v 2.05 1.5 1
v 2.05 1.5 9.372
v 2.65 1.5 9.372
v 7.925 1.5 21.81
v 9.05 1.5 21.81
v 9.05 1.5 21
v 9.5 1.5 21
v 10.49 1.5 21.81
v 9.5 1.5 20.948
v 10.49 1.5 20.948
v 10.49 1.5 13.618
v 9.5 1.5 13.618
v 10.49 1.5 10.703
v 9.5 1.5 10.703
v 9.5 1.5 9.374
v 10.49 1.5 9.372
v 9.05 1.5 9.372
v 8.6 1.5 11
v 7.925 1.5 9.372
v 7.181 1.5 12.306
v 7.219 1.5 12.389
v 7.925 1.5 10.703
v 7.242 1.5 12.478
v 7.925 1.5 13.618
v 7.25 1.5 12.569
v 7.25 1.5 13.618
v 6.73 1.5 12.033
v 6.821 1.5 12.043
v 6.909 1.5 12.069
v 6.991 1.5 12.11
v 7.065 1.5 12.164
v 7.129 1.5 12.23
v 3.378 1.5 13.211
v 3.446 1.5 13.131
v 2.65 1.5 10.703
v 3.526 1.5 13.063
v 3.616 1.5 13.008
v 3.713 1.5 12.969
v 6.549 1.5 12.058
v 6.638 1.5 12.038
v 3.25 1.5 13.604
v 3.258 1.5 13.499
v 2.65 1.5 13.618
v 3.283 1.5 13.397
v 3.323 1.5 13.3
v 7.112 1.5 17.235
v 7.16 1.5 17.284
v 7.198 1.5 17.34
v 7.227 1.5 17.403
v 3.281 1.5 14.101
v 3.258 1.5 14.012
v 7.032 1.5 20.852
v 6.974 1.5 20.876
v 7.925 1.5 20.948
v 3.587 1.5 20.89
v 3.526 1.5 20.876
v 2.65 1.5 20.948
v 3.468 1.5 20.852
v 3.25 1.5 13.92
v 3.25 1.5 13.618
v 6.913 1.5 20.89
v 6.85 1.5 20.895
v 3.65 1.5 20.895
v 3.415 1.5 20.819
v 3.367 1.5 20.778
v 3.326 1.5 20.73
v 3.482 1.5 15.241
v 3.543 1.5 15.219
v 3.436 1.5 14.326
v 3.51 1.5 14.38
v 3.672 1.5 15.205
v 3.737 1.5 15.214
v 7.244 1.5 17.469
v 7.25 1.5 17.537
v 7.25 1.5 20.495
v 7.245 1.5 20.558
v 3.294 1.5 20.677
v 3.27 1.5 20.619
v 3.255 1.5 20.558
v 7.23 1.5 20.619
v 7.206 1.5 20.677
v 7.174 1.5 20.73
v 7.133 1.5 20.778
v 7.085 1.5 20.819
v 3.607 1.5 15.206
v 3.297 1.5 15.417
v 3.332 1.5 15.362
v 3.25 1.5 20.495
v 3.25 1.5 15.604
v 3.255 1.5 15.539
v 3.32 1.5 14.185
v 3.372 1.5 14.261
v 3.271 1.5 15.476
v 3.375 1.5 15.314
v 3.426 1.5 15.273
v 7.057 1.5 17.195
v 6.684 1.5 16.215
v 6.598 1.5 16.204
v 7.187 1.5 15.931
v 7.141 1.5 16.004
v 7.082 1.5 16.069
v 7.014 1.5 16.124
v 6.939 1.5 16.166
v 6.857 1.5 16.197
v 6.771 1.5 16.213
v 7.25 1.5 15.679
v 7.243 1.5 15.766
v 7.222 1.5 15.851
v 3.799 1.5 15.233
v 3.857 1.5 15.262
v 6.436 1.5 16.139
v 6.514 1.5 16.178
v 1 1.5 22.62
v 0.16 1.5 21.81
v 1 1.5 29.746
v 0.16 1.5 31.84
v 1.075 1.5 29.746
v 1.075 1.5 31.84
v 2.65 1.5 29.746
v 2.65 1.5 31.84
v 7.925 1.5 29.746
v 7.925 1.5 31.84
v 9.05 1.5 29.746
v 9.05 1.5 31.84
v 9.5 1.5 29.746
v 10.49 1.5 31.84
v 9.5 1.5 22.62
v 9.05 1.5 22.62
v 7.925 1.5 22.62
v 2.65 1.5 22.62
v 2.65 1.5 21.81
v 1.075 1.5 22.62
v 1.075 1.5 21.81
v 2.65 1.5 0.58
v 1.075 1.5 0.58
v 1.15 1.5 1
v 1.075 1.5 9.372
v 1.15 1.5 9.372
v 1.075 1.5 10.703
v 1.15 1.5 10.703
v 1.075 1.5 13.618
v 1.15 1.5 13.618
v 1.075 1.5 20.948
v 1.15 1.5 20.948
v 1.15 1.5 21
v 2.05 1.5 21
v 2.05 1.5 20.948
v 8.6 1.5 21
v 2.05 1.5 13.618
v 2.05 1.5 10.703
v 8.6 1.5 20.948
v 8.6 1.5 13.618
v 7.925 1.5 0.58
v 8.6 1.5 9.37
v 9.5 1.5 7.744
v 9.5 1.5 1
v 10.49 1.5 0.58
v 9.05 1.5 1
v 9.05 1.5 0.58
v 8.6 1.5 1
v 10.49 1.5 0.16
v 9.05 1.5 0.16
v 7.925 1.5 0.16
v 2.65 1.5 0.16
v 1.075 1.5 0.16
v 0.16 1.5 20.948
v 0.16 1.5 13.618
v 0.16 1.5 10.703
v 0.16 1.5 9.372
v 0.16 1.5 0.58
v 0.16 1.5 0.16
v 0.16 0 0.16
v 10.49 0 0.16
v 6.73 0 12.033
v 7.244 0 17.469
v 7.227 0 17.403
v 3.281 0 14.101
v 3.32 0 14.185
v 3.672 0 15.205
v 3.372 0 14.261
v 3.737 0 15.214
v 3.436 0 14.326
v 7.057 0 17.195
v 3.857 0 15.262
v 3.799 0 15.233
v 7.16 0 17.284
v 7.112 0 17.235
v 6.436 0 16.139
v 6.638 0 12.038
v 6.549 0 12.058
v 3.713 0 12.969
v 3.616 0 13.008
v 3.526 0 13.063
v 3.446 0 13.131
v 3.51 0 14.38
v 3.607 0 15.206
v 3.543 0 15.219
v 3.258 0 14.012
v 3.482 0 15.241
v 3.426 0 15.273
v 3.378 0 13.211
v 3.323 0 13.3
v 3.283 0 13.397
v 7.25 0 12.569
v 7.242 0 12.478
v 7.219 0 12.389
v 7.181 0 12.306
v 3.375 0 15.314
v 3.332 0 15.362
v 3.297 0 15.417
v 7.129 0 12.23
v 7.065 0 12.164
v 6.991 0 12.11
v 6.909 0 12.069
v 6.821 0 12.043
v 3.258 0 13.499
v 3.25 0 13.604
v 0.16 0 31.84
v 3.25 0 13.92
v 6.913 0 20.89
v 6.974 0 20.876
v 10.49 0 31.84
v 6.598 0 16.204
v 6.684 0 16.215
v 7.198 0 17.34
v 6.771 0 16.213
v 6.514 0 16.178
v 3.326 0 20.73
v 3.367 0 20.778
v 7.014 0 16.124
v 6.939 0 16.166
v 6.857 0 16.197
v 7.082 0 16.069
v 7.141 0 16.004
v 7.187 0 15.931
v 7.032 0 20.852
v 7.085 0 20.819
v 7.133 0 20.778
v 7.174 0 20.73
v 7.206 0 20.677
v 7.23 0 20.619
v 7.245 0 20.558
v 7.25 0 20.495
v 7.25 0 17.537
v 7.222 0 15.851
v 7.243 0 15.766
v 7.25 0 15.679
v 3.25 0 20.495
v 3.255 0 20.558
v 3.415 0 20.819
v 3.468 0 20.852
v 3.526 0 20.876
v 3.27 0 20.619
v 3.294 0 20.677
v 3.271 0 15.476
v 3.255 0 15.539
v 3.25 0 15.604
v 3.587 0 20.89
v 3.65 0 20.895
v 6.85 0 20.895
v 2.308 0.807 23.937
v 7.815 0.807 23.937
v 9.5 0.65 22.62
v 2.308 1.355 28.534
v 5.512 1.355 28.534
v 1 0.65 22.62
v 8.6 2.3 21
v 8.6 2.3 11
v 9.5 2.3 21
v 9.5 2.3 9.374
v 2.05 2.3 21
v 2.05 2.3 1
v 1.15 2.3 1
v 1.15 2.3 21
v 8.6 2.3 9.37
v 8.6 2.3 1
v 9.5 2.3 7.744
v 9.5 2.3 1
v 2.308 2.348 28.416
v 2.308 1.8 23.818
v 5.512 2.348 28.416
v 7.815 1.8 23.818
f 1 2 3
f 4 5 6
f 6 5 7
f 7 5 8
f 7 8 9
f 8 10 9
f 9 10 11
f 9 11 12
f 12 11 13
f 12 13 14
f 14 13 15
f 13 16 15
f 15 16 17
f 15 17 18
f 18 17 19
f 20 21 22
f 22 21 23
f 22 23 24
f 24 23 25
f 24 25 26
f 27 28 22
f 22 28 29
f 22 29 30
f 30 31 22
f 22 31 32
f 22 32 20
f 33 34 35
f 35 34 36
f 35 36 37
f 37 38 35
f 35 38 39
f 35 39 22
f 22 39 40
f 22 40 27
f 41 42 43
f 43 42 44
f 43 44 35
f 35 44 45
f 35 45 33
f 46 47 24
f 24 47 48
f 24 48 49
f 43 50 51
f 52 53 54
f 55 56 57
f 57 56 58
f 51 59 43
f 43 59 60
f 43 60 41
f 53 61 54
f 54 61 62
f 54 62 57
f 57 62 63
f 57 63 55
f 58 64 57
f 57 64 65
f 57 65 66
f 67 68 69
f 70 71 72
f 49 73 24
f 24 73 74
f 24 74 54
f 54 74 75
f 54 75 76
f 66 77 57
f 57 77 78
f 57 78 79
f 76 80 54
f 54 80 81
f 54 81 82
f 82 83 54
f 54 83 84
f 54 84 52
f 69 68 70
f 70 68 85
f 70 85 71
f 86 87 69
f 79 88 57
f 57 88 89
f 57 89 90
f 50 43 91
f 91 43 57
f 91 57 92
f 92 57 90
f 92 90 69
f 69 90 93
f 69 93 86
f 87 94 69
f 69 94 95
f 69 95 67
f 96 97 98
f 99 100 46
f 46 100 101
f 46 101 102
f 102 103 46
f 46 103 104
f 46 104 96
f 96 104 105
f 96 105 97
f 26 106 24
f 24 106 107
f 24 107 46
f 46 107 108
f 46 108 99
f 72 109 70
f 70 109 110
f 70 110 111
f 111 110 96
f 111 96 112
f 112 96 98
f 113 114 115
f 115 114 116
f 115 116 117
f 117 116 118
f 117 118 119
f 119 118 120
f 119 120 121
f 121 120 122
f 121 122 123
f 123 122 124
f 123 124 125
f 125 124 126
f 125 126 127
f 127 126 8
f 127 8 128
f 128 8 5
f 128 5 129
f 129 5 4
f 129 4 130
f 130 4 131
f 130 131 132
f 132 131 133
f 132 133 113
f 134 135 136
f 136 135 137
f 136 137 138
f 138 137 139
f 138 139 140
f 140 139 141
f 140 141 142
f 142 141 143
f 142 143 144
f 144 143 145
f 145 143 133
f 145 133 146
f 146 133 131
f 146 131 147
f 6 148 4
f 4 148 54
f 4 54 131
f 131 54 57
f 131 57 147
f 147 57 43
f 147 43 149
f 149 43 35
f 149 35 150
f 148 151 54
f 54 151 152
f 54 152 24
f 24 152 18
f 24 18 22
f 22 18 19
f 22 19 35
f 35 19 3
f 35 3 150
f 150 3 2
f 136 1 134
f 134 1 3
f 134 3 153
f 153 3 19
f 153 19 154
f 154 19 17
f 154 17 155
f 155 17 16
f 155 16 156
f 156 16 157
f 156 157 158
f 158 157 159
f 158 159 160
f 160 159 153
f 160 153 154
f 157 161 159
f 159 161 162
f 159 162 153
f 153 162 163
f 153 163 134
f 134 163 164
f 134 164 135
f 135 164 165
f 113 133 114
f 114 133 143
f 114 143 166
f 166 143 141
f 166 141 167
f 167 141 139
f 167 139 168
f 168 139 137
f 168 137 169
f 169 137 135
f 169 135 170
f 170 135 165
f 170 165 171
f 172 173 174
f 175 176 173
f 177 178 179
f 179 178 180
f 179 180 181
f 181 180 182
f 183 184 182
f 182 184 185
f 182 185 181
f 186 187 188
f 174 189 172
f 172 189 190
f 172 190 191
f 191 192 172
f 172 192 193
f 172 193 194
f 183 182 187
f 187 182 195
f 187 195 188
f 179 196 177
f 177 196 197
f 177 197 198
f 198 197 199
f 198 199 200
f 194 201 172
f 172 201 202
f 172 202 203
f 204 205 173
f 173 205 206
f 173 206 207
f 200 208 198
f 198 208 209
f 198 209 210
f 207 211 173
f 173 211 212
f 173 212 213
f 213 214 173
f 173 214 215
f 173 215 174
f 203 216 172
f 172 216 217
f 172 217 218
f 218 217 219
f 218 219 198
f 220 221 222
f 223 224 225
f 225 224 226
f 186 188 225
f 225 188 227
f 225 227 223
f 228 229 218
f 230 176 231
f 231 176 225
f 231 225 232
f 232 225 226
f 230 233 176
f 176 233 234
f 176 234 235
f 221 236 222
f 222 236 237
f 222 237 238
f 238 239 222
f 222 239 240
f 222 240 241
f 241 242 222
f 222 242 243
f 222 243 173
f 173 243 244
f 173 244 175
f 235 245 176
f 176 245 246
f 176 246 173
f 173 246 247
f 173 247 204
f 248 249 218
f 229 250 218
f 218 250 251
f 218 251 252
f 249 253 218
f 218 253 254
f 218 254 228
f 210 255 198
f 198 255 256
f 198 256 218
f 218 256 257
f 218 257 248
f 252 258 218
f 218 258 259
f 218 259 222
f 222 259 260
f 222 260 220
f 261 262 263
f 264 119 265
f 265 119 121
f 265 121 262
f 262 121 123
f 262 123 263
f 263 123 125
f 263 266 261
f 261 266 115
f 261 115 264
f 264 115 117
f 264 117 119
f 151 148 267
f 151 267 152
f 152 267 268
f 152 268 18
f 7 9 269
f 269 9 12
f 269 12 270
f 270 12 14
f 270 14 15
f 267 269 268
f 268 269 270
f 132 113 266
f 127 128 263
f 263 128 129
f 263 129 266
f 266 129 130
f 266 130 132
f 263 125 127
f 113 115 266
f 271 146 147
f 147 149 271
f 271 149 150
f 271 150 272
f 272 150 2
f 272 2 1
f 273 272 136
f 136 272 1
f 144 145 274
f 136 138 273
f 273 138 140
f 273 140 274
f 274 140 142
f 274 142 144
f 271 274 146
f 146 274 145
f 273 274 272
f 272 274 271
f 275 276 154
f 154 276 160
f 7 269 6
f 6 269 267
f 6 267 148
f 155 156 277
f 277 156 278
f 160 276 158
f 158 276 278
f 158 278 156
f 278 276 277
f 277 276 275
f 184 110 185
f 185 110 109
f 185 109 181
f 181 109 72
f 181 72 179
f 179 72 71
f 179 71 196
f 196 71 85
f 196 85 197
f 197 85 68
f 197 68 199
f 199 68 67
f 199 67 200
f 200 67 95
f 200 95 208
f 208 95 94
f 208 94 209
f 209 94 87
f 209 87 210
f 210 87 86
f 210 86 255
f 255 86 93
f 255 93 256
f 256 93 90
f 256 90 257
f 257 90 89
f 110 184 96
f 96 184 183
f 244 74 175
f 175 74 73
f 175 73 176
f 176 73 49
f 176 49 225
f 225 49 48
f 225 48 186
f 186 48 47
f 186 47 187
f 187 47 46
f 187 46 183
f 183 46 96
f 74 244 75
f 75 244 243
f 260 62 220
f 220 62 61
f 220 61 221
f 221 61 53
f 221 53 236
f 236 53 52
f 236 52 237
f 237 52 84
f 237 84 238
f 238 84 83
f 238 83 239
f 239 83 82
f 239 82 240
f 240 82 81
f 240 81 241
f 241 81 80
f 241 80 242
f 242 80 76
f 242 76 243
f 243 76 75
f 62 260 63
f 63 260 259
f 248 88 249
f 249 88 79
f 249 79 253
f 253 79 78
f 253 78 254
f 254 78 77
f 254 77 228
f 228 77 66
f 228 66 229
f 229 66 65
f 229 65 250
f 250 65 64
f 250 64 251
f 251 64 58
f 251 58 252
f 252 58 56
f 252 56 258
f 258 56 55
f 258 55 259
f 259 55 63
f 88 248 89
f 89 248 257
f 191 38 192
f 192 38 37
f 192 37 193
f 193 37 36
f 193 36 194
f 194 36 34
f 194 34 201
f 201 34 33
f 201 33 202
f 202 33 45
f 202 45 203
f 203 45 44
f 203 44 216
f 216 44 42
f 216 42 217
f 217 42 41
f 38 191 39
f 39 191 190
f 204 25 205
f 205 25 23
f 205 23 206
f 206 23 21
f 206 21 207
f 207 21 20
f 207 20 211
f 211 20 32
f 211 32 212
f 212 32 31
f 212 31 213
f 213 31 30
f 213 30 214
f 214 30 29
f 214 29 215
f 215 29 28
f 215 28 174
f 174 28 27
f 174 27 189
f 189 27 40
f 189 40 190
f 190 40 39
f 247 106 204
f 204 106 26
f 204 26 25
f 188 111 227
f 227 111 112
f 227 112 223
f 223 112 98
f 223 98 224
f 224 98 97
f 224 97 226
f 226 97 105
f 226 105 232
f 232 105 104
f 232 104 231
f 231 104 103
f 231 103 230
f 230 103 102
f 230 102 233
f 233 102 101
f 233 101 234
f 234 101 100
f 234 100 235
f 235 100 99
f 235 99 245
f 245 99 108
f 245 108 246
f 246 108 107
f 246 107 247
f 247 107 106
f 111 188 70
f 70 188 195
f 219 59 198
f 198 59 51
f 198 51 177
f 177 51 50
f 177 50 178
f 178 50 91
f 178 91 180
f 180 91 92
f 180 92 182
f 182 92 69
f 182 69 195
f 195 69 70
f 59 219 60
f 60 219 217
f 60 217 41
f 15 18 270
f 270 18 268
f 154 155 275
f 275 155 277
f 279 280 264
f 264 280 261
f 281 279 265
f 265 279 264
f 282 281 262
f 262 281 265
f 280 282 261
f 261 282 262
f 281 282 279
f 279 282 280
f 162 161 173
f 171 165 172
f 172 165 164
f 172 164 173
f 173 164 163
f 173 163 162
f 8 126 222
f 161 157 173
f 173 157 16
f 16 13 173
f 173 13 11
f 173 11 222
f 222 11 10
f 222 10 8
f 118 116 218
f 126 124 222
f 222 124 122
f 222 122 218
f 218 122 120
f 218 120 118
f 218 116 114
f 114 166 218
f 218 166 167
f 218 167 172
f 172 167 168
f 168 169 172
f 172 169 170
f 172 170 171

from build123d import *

# Parameters (mm, degrees)
SKETCH_1_W          = 10.65
SKETCH_1_H          = 32
EXTRUDE_1_DEPTH     = 1.5
CUT_EXTRUDE_START   = -1
CUT_EXTRUDE_1_DEPTH = 8.5
SKETCH_4_W          = 0.9
SKETCH_4_H          = 20
EXTRUDE_2_DEPTH     = 0.8
CUT_EXTRUDE_2_DEPTH = 5.8
CUT_EXTRUDE_3_DEPTH = 0.8
EXTRUDE_3_DEPTH     = 1
SKETCH_8_W          = 10.65
SKETCH_8_H          = 32
SKETCH_8_W_2        = 10.33
SKETCH_8_H_2        = 31.68
CUT_EXTRUDE_4_DEPTH = 10


with BuildPart() as part:
    # 草图1 → 凸台-拉伸1 (new body)
    with BuildSketch(Plane(origin=(0, 0, 0), x_dir=(1, 0, 0), z_dir=(0, 1, 0))):
        with Locations((5.325, -16)):
            Rectangle(SKETCH_1_W, SKETCH_1_H)
    extrude(amount=EXTRUDE_1_DEPTH)

    # 草图3 → 切除-拉伸1 (cut)
    with BuildSketch(Plane.ZY.offset(CUT_EXTRUDE_START)):
        Polygon((22.619658117, 1.5), (29.745922722, 1.5), (22.619658117, 0.65), align=None)
    extrude(amount=-CUT_EXTRUDE_1_DEPTH, mode=Mode.SUBTRACT)

    # 草图4 → 凸台-拉伸2 (add)
    with BuildSketch(Plane(origin=(0, 1.5, 0), x_dir=(1, 0, 0), z_dir=(0, 1, 0))):
        with Locations((1.6, -11)):
            Rectangle(SKETCH_4_W, SKETCH_4_H)
        with Locations((9.05, -11)):
            Rectangle(SKETCH_4_W, SKETCH_4_H)
    extrude(amount=EXTRUDE_2_DEPTH)

    # 草图5 → 切除-拉伸2 (cut)
    with BuildSketch(Plane(origin=(0, 1.5, 0), x_dir=(1, 0, 0), z_dir=(0, 1, 0))):
        with BuildLine():
            Line((3.25, -15.60411185), (3.25, -20.495209364))
            ThreePointArc((3.25, -20.495209364), (3.367157288, -20.778052076), (3.65, -20.895209364))
            Line((3.65, -20.895209364), (6.85, -20.895209364))
            ThreePointArc((6.85, -20.895209364), (7.132842712, -20.778052076), (7.25, -20.495209364))
            Line((7.25, -20.495209364), (7.25, -17.536917794))
            ThreePointArc((7.25, -17.536917794), (7.198369033, -17.340349696), (7.056804915, -17.194526604))
            Line((7.056804915, -17.194526604), (3.856804915, -15.261720659))
            ThreePointArc((3.856804915, -15.261720659), (3.453431902, -15.255742817), (3.25, -15.60411185))
        make_face()
        with BuildLine():
            Line((3.510326299, -14.380458294), (6.436346003, -16.139397213))
            ThreePointArc((6.436346003, -16.139397213), (6.977388991, -16.14656228), (7.25, -15.679162997))
            Line((7.25, -15.679162997), (7.25, -12.569402982))
            ThreePointArc((7.25, -12.569402982), (7.029399053, -12.135517868), (6.548846383, -12.05812148))
            Line((6.548846383, -12.05812148), (3.713121915, -12.968622573))
            ThreePointArc((3.713121915, -12.968622573), (3.378076137, -13.210716019), (3.25, -13.603731812))
            Line((3.25, -13.603731812), (3.25, -13.920224078))
            ThreePointArc((3.25, -13.920224078), (3.319590865, -14.184603216), (3.510326299, -14.380458294))
        make_face()
    extrude(amount=-CUT_EXTRUDE_2_DEPTH, mode=Mode.SUBTRACT)

    # 草图6 → 切除-拉伸3 (cut)
    with BuildSketch(Plane(origin=(0, 2.3, 0), x_dir=(1, 0, 0), z_dir=(0, 1, 0))):
        Polygon((9.5, -7.744189198), (8.6, -9.370124246), (8.6, -11), (9.5, -9.374064951), align=None)
    extrude(amount=-CUT_EXTRUDE_3_DEPTH, mode=Mode.SUBTRACT)

    # 草图7 → 凸台-拉伸3 (add)
    with BuildSketch(Plane(origin=(0, -2.01927835, 0.240853616), x_dir=(1, 0, 0), z_dir=(0, 0.9929615038625476, -0.11843754407715576))):
        Polygon((2.308389857, -23.863899052), (7.814564381, -23.863899052), (5.511982308, -28.494091265), (2.308389857, -28.494091265), align=None)
    extrude(amount=EXTRUDE_3_DEPTH)

    # 草图8 → 切除-拉伸4 (cut)
    with BuildSketch(Plane(origin=(0, 1.5, 0), x_dir=(1, 0, 0), z_dir=(0, 1, 0))):
        with Locations((5.325, -16)):
            Rectangle(SKETCH_8_W, SKETCH_8_H)
        with Locations((5.325, -16)):
            Rectangle(SKETCH_8_W_2, SKETCH_8_H_2, mode=Mode.SUBTRACT)
    extrude(amount=-CUT_EXTRUDE_4_DEPTH, mode=Mode.SUBTRACT)


solid = part.part
